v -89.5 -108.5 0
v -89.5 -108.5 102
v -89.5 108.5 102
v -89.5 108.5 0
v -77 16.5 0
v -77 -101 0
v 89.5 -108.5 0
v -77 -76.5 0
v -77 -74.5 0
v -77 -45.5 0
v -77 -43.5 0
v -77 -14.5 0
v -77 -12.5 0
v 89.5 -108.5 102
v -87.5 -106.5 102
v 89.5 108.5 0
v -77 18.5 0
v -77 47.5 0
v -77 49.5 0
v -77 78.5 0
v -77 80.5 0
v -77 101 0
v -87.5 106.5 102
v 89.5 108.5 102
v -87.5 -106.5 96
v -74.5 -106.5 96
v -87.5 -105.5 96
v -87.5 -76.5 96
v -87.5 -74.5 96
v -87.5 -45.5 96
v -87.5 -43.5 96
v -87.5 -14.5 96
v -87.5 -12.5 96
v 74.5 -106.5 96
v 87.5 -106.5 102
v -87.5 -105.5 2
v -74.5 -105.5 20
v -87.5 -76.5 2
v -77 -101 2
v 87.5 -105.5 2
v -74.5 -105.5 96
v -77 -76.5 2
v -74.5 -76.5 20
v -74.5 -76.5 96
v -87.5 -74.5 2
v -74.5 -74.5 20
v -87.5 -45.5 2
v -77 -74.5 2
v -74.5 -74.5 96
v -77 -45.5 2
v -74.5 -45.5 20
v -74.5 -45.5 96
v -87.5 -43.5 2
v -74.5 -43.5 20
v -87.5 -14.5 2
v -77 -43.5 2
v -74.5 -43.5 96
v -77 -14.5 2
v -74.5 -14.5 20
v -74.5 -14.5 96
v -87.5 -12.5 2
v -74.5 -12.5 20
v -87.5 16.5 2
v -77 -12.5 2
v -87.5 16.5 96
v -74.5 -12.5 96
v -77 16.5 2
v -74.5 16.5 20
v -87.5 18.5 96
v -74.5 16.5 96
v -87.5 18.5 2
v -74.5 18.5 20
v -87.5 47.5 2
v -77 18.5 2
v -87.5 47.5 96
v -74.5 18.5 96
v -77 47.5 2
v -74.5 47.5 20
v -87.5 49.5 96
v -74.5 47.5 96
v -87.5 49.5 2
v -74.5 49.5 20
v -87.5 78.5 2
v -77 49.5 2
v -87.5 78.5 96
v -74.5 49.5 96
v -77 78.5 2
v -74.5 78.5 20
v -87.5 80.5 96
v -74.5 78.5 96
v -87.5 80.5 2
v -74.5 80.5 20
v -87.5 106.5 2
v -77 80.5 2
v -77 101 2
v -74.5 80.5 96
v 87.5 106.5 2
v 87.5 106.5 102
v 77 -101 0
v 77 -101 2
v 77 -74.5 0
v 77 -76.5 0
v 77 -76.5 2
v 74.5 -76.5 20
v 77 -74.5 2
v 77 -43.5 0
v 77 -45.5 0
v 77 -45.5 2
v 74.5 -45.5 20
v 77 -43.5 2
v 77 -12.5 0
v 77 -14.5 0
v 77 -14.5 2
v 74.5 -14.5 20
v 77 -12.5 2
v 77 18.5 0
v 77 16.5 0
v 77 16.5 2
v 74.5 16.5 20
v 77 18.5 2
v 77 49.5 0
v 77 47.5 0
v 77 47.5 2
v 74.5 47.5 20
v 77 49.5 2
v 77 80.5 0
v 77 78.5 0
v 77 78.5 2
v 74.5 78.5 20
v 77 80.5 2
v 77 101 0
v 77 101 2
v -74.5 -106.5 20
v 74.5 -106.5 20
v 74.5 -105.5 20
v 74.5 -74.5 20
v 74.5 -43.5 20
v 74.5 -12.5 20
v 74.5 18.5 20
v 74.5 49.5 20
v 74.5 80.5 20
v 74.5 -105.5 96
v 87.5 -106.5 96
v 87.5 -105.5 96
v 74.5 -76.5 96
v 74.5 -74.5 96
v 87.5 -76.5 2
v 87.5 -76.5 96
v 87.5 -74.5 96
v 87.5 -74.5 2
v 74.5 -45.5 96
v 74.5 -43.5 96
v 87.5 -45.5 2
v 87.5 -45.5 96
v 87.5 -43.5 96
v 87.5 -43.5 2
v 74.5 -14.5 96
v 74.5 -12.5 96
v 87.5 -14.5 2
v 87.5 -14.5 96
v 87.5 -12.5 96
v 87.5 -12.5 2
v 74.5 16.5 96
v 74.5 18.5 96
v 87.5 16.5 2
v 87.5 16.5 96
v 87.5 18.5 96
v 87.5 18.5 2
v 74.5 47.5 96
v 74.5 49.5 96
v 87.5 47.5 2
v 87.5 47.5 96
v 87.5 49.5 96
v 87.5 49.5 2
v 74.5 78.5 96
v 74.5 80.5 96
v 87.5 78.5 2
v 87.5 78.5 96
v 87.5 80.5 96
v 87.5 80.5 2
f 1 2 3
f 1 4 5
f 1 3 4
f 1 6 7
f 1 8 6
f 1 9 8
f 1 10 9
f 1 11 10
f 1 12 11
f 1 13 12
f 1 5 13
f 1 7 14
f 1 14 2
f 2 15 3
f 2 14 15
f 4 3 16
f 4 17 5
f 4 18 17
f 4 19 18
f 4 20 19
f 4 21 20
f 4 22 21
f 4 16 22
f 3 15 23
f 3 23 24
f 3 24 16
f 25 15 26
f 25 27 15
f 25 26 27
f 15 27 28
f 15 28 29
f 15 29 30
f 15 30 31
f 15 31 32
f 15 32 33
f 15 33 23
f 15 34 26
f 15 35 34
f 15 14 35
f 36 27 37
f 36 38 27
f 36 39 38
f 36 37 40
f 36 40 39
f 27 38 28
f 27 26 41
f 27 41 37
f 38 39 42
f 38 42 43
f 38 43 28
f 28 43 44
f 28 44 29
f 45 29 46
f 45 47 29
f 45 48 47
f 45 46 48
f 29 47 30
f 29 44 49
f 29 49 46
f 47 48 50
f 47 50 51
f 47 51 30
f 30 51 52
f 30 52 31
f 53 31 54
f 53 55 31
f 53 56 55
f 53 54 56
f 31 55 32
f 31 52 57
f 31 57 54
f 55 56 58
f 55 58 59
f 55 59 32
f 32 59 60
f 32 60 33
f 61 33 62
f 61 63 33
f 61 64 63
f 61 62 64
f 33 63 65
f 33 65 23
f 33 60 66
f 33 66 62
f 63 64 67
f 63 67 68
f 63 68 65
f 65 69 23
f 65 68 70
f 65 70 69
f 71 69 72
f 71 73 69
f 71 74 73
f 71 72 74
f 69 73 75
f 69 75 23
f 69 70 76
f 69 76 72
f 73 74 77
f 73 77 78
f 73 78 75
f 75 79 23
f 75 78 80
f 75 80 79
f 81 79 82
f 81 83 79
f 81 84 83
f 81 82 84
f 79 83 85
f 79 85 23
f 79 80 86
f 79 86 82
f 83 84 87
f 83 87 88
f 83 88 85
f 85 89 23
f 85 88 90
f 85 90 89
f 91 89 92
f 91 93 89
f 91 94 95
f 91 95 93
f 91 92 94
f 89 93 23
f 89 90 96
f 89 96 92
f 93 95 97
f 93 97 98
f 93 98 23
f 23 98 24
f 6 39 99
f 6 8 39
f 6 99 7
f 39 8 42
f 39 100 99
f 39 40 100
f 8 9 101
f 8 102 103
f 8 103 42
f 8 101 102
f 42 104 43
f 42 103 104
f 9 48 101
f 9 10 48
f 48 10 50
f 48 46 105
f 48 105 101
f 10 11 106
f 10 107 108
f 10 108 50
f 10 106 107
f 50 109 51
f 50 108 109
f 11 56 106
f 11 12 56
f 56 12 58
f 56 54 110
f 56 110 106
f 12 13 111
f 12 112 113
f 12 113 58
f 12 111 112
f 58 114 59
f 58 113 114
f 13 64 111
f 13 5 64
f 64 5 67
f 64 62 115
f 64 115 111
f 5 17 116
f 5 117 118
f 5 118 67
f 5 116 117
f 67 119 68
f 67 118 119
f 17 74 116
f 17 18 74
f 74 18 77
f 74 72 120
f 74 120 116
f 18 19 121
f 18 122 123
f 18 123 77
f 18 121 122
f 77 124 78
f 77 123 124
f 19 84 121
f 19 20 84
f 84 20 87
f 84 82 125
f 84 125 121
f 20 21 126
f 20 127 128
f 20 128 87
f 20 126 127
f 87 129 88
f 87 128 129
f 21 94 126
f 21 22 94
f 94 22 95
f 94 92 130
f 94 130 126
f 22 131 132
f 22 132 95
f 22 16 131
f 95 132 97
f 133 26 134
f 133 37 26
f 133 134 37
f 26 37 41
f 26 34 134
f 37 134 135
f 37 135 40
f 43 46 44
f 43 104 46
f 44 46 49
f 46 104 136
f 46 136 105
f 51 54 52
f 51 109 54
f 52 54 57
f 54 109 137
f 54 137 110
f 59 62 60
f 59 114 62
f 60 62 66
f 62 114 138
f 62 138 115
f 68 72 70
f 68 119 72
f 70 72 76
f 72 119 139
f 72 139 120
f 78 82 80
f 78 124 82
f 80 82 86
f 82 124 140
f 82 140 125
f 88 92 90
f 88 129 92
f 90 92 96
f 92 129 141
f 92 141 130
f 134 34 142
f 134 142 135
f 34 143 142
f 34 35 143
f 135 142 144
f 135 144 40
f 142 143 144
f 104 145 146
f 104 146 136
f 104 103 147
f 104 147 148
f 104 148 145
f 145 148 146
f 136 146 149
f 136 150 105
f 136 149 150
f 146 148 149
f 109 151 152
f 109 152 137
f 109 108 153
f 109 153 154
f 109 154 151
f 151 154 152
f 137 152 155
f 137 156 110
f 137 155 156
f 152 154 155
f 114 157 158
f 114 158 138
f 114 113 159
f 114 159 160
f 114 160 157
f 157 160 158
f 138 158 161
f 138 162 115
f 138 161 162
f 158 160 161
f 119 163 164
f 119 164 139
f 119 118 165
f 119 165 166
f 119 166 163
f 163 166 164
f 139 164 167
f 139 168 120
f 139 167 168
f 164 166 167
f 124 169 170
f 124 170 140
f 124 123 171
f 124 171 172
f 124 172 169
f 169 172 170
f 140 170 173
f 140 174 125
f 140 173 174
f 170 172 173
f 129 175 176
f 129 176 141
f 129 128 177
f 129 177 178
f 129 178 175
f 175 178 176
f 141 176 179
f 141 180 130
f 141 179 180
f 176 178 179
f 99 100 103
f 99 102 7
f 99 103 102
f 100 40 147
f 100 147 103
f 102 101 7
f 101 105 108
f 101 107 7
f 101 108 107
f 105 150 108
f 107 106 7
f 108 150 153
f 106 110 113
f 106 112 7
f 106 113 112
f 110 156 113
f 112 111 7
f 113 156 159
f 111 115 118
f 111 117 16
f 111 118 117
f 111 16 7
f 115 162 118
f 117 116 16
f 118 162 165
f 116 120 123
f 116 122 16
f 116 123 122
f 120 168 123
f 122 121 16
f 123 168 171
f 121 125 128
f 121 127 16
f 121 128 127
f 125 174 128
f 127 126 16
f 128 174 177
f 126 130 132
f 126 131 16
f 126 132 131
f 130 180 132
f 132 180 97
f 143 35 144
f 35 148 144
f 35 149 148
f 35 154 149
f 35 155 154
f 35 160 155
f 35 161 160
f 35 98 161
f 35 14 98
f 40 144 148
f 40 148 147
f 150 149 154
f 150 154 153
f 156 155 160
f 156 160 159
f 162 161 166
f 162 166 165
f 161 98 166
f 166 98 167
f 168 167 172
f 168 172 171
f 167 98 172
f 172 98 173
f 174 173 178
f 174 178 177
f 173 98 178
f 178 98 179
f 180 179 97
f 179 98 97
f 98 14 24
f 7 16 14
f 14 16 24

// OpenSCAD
// boxholder
// Prusa (X × Y × Z): 250 mm × 210 mm × 220 mm


// TODO: parameterize, so we can print multiple box sizes easily
// TODO: look and see if there are any better things like on thinginverse
// TODO: add attachment points for box stacking
// TODO: reduce weight, see where things can be thinner/smaller

gap=6;
wall=2;

//small

//bww=133;
//bdd=66;
//bhh=23;
//N=7;

// big
bww=175;
bdd=100;
bhh=23;
N=7;

module normcube(c) {
    // normalize a cube to be positioned around the origin, like a cylinder.
    translate([-c.x/2,-c.y/2,0]) cube(c);
}



module main() {
  ax=bww+2*wall;
  ay=N*(bhh+gap+wall);
  az=bdd+wall;
  echo(ax,ay,az);
  difference() {
    // main box
    normcube([ax,ay,az]);
    // inside chop
    translate([0,0,wall]) normcube([ax-2*wall,ay-2*wall,az-wall]);
    // back panel chop
    normcube([ax-25,ay-15,wall]);
  }
  difference() {
    for (i=[0:N-1]) {
      // shelves
      translate([0,-(ay/2-wall)+i*(bhh+gap+wall),0])     normcube([ax,wall,az-6]);
    }
    // inside chop
    translate([0,0,20]) normcube([ax-30,ay-2*wall,az+wall]);
  }
}


main();
